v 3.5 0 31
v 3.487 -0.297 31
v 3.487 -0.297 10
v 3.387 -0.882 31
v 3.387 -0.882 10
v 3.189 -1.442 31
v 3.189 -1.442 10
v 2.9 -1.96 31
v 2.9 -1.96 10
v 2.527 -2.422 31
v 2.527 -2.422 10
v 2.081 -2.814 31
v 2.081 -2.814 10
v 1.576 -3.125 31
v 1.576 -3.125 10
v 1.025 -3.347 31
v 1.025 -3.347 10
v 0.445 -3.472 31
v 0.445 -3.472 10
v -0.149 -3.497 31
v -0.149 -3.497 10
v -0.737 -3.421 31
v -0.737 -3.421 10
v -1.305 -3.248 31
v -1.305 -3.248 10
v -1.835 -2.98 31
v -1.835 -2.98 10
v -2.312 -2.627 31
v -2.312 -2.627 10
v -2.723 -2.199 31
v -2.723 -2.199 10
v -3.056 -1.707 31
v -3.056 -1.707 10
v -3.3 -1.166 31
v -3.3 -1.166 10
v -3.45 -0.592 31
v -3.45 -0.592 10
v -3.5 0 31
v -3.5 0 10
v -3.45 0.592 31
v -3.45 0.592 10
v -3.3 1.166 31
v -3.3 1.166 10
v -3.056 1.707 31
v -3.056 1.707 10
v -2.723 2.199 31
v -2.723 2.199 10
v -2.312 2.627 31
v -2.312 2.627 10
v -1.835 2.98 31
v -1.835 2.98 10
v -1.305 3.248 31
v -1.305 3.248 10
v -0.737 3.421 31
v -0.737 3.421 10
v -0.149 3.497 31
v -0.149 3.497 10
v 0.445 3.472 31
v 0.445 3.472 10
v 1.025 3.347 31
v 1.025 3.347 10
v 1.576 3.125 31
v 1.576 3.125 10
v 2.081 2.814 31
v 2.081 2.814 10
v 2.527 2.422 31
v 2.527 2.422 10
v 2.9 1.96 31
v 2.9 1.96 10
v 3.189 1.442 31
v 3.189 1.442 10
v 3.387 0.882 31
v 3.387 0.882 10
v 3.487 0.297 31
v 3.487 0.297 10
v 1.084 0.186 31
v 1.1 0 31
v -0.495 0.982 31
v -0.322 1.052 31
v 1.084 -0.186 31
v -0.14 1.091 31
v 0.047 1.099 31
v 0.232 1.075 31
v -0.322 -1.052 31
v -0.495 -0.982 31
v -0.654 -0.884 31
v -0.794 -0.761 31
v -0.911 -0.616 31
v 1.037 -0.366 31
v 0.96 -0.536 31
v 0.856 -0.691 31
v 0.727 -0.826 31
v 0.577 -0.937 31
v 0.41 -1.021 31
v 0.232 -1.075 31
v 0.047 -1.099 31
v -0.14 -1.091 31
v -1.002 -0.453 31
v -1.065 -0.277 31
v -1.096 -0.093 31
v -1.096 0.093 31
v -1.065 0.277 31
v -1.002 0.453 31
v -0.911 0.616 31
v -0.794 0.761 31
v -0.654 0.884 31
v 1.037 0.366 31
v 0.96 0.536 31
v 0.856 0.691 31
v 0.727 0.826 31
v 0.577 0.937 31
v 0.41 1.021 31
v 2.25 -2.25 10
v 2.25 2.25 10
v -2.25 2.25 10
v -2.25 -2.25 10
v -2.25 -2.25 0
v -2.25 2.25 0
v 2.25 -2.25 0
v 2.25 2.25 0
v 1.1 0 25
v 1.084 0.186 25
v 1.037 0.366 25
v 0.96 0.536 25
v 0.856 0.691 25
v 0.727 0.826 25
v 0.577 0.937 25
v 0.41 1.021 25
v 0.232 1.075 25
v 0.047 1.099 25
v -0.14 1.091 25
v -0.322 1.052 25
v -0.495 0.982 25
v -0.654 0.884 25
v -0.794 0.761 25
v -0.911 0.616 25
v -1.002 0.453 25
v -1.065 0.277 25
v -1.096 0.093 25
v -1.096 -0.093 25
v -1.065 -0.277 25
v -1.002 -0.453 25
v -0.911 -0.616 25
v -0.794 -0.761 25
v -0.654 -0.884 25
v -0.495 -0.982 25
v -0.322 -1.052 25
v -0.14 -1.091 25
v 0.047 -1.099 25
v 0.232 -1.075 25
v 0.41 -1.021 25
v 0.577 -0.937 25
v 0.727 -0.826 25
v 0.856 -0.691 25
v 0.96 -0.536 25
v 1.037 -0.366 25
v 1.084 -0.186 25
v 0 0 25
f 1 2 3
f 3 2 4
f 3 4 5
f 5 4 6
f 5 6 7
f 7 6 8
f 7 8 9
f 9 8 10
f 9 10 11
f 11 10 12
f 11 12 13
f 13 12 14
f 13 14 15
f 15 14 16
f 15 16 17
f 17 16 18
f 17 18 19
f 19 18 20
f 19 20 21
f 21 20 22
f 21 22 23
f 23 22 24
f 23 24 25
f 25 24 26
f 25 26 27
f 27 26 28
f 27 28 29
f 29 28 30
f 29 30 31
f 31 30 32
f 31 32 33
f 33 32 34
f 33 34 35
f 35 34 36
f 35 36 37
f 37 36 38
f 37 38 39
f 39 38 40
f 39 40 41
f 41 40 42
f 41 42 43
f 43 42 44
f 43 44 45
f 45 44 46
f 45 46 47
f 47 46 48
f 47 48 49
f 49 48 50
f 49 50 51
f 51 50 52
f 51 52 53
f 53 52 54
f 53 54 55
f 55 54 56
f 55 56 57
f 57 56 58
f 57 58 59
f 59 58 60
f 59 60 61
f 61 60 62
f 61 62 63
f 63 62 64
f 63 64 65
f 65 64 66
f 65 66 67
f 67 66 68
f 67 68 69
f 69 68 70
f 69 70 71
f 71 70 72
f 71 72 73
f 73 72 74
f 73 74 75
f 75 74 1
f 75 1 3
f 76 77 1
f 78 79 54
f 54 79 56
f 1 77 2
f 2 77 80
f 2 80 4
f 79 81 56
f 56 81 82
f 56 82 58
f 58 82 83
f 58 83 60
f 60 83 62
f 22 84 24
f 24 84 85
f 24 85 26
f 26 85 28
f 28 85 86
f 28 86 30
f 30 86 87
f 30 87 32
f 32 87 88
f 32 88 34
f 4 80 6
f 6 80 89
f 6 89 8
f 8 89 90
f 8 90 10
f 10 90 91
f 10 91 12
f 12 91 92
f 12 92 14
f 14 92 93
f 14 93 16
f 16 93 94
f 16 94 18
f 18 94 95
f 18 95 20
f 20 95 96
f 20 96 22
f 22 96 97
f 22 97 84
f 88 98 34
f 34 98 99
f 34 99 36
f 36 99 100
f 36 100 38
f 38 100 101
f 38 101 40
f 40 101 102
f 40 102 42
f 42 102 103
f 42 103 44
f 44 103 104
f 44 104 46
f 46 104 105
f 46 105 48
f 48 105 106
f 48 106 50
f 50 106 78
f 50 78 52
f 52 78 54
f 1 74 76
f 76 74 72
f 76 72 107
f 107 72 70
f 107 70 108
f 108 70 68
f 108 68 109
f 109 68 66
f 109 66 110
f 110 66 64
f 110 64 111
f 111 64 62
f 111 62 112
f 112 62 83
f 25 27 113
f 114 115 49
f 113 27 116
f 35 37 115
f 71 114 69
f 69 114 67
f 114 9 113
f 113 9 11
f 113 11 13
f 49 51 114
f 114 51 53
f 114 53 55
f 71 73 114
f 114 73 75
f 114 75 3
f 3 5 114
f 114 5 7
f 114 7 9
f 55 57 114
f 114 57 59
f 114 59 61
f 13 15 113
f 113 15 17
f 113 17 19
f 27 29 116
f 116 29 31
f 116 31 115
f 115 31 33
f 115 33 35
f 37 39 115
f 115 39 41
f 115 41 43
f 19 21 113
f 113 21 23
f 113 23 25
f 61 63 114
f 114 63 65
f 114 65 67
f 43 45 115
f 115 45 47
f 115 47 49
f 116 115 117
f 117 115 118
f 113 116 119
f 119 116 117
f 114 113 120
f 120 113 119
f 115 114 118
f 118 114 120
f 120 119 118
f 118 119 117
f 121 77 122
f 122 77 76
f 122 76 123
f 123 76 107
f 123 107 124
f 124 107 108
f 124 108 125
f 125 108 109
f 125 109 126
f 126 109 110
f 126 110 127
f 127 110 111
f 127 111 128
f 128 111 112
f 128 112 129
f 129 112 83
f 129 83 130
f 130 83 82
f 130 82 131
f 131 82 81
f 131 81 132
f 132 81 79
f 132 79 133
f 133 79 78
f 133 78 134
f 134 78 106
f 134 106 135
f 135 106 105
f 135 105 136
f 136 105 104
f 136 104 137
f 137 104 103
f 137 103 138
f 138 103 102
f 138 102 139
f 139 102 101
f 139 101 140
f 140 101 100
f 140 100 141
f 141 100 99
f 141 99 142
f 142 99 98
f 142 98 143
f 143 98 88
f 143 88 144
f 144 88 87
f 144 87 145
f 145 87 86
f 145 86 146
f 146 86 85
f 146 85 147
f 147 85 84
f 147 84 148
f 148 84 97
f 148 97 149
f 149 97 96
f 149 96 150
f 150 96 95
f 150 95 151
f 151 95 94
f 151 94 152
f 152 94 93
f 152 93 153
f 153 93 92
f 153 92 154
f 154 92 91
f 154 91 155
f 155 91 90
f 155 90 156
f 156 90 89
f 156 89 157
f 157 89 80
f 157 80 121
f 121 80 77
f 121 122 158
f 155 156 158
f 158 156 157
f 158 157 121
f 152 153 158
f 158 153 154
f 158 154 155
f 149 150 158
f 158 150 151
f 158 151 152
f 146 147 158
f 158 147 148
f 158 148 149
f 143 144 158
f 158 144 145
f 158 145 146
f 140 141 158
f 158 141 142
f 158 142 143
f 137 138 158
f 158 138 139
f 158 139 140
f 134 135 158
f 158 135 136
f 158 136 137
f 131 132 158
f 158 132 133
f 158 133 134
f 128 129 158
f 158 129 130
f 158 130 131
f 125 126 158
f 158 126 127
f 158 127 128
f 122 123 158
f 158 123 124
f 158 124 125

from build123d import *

# Parameters (mm, degrees)
SKETCH2_R           = 3.5
BOSS_EXTRUDE1_DEPTH = 31
SKETCH4_R           = 3.5
SKETCH4_W           = 4.5
SKETCH4_H           = 4.5
CUT_EXTRUDE1_DEPTH  = 10
SKETCH7_R           = 1.1
CUT_EXTRUDE2_DEPTH  = 6


with BuildPart() as part:
    # Sketch2 → Boss-Extrude1 (new body)
    with BuildSketch(Plane.XY):
        Circle(SKETCH2_R)
    extrude(amount=BOSS_EXTRUDE1_DEPTH)

    # Sketch4 → Cut-Extrude1 (cut)
    with BuildSketch(Plane(origin=(0, 0, 0), x_dir=(-1, 0, 0), z_dir=(0, 0, -1))):
        Circle(SKETCH4_R)
        Rectangle(SKETCH4_W, SKETCH4_H, mode=Mode.SUBTRACT)
    extrude(amount=-CUT_EXTRUDE1_DEPTH, mode=Mode.SUBTRACT)

    # Sketch7 → Cut-Extrude2 (cut)
    with BuildSketch(Plane.XY.offset(31)):
        Circle(SKETCH7_R)
    extrude(amount=-CUT_EXTRUDE2_DEPTH, mode=Mode.SUBTRACT)


solid = part.part
